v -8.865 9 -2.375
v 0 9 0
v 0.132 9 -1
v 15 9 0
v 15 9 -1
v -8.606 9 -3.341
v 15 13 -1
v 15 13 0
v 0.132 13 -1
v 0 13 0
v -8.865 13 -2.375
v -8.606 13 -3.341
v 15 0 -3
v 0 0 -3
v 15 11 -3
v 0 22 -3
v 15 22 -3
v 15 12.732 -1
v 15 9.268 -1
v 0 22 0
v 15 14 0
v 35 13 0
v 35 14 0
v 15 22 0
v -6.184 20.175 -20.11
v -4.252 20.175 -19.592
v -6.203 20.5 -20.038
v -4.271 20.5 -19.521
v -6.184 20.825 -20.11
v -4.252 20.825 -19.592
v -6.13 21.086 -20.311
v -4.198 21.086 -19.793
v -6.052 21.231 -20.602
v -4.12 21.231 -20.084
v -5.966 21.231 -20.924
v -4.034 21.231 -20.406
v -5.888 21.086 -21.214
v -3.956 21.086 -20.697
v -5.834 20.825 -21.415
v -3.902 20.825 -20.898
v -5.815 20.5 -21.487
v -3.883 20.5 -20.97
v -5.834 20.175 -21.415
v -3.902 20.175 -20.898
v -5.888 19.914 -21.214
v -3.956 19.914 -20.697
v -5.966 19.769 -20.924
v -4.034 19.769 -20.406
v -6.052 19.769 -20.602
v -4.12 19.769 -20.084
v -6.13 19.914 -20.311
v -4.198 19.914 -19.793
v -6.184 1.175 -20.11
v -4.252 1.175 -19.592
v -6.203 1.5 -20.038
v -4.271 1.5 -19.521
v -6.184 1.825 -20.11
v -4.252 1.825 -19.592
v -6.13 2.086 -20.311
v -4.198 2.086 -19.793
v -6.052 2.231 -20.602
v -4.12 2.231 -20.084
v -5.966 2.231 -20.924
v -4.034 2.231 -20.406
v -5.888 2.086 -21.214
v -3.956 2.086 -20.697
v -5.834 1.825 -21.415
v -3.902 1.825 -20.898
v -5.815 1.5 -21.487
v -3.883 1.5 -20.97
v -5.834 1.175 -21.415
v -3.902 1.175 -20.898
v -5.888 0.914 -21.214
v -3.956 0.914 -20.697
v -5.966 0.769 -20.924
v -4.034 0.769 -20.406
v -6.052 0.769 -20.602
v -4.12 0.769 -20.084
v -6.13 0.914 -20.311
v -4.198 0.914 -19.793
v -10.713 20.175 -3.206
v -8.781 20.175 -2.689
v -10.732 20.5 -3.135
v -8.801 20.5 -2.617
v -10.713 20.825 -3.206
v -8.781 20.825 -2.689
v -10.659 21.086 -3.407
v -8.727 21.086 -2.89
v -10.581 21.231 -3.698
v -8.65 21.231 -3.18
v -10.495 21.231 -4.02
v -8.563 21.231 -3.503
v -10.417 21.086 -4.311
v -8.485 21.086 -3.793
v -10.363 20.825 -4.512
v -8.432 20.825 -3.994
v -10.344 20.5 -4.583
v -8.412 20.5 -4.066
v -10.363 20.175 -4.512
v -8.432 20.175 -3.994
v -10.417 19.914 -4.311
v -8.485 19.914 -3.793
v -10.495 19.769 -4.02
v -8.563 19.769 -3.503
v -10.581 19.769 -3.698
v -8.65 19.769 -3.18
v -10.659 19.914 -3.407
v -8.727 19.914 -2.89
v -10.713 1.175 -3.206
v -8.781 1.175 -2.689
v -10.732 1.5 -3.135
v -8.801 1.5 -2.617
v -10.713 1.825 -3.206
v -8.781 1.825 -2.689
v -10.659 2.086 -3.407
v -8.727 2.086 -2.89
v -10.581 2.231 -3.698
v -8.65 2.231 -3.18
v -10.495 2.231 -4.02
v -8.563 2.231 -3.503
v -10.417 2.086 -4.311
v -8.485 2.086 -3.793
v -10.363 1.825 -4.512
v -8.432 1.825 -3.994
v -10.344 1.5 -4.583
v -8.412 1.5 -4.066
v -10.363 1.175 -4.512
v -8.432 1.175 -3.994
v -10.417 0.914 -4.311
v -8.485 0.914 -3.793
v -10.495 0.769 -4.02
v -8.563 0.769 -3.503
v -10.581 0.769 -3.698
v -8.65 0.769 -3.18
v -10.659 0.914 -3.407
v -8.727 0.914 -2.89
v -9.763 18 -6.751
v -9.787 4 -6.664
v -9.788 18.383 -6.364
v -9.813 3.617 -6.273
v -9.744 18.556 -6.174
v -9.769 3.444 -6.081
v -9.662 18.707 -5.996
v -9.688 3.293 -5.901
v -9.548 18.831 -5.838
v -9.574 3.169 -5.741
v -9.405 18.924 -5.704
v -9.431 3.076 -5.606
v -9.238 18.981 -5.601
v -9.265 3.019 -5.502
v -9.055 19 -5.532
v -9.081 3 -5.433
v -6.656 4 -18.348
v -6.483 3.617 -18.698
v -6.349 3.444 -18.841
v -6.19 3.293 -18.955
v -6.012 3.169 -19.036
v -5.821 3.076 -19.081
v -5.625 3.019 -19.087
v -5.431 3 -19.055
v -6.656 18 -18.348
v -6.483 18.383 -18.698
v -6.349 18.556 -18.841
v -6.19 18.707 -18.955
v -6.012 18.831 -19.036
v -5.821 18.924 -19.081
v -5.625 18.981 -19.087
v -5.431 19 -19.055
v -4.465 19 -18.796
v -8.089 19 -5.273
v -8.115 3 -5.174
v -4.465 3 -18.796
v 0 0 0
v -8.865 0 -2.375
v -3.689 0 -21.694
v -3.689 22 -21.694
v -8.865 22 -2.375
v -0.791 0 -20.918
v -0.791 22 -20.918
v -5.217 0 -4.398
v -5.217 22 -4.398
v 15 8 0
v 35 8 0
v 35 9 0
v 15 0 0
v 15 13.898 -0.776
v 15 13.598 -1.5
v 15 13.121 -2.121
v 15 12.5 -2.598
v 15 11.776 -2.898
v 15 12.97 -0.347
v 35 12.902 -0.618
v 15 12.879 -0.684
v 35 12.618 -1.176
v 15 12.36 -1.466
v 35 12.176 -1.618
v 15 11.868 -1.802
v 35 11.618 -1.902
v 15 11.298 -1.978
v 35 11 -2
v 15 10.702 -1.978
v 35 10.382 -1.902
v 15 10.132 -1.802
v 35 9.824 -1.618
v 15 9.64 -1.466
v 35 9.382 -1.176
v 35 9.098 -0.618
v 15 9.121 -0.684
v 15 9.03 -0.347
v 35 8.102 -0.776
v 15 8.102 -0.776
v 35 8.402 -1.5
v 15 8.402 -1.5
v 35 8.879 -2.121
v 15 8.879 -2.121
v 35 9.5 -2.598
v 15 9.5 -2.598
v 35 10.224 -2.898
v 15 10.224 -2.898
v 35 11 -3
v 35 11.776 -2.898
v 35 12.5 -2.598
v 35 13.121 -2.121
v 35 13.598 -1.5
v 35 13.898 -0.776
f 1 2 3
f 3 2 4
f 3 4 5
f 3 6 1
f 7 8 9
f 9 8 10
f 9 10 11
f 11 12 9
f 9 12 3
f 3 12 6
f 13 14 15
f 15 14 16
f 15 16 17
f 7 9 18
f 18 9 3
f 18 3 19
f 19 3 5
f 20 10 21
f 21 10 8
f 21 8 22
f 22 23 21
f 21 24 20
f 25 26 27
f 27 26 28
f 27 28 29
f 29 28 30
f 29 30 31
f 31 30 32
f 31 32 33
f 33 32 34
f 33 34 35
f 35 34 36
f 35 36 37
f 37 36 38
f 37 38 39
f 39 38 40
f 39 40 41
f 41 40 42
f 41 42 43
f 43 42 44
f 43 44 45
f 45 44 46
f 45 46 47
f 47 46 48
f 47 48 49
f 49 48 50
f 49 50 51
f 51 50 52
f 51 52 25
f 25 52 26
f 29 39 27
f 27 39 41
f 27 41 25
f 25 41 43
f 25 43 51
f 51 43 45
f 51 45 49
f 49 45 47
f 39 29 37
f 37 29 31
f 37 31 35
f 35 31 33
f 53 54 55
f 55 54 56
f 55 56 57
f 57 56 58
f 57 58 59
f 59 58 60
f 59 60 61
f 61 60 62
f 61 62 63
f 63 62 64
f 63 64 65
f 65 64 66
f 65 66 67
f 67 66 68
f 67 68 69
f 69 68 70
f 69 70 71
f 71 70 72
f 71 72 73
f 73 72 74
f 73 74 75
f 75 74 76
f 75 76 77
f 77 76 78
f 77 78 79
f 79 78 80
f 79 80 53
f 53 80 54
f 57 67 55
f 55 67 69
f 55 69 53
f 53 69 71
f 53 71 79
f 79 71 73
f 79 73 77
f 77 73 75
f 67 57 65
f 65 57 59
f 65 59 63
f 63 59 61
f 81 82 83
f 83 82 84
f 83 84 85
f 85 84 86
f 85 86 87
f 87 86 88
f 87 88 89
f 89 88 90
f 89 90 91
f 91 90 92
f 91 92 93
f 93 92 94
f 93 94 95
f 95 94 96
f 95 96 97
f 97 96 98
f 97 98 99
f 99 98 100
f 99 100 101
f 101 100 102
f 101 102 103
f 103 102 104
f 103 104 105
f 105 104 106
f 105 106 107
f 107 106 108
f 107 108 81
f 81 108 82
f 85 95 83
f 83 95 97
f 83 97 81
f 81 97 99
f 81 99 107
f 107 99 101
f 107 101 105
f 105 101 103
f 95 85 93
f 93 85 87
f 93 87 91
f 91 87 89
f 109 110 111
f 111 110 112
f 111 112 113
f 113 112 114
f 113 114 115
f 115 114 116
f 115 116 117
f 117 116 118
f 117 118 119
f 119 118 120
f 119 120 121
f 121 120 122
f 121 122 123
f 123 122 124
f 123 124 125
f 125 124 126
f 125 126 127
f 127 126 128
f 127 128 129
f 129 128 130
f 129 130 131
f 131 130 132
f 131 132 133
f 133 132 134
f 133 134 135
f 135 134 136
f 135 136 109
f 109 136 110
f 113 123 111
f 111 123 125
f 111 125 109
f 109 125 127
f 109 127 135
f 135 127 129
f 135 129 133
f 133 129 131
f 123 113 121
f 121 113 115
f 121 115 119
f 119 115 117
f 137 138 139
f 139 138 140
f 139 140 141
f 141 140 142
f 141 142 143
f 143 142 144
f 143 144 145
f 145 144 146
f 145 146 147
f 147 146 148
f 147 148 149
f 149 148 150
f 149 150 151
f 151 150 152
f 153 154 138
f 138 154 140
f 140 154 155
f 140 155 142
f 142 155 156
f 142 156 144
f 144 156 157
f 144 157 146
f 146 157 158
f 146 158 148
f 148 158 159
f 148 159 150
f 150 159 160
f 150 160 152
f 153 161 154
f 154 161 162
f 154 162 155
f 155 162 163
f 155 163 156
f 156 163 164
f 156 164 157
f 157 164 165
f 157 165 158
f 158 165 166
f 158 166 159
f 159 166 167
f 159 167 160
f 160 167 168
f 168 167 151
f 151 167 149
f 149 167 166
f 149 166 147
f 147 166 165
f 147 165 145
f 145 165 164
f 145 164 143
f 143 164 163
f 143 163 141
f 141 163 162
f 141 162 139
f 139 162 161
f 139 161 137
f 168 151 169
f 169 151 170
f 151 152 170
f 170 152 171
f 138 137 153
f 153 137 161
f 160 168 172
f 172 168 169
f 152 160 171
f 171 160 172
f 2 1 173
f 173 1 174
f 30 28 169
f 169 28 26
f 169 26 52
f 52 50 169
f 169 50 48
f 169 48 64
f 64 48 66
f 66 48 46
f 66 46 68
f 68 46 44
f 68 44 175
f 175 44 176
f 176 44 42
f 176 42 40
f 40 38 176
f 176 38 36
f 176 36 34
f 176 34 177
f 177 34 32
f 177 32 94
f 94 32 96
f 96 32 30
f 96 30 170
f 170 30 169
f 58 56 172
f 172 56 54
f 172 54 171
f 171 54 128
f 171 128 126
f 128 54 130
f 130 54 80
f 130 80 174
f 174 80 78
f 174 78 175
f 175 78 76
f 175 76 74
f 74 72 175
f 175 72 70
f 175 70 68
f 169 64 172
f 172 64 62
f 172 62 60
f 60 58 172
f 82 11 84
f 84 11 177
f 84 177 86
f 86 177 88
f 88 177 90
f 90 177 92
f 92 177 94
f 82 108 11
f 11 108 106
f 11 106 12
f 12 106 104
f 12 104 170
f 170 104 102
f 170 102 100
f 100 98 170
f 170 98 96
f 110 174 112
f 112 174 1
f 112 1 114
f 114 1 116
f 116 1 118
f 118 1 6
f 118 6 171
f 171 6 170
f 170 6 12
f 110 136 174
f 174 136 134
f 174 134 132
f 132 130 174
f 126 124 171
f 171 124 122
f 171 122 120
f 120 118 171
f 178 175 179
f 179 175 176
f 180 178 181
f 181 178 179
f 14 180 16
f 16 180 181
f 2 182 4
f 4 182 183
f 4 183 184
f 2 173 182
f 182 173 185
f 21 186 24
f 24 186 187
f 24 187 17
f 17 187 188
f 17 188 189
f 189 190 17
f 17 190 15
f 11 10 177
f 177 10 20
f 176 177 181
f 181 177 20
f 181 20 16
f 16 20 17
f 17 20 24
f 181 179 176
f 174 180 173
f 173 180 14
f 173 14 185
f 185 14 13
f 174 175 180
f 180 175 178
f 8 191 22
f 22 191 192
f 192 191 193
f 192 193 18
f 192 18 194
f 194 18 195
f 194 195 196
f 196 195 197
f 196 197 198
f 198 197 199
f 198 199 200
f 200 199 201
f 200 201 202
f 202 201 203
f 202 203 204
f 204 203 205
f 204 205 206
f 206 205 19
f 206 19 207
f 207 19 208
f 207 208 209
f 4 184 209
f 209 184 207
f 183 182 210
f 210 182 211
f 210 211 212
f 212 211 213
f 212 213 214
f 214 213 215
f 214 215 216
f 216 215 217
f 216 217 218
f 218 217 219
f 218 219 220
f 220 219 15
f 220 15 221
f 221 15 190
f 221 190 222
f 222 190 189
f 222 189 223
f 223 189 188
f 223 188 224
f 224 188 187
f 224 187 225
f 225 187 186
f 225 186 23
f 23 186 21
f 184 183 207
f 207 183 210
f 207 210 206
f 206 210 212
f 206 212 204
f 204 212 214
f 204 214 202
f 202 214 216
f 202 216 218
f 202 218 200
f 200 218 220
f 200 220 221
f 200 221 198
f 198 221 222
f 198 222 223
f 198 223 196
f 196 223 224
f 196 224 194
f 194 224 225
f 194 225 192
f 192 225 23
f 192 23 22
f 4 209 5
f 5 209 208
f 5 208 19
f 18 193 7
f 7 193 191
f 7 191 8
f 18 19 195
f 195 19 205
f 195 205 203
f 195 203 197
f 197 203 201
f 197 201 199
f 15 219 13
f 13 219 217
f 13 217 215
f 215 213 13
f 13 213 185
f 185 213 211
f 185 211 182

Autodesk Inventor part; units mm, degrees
ref_plane "YZ Plane" through (0, 0, 0) normal (1, 0, 0) x (0, 1, 0)
ref_plane "XZ Plane" through (0, 0, 0) normal (0, 1, 0) x (-1, 0, 0)
ref_plane "XY Plane" through (0, 0, 0) normal (0, 0, 1) x (1, 0, 0)
sketch "Boceto1" plane through (0, 0, 0) normal (0, 1, 0) x (-1, 0, 0)
  line L0 (0, 0) -> (-15, 0)
  line L1 (0, 0) -> (7.0223, -1.8816)
  line L2 (0, 0) -> (7.27, 0) construction
  line L3 (8.8653, -2.3754) -> (7.0223, -1.8816)
  line L4 (8.8653, -2.3754) -> (3.6889, -21.694)
  line L5 (8.8653, -2.3754) -> (28.8653, -2.3754) construction
  line L6 (-15, 0) -> (-15, -3)
  line L7 (-15, -3) -> (0, -3)
  line L8 (0, -3) -> (5.2175, -4.398)
  line L9 (5.2175, -4.398) -> (25.2175, -4.398) construction
  line L10 (3.6889, -21.694) -> (0.7911, -20.9175)
  line L11 (0.7911, -20.9175) -> (5.2175, -4.398)
  point P0 (4.2275, -19.6837)
  dimension "d0" = 15
  dimension "d1" = 7.27
  dimension "d2" = 15
  dimension "d3" = 1.908
  dimension "d4" = 20
  dimension "d5" = 105
  dimension "d7" = 3
extrude "Extrusión1" add sketch "Boceto1" along normal blind 22
sketch "Boceto2" plane through (0, 0, 0) normal (-0.258819, 0, 0.9659258) x (0.9659258, 0, 0.258819)
  line L0 (-9.178, 0) -> (-9.178, 22) projected
  line L1 (-9.178, 0) -> (-9.178, 9)
  line L2 (-9.178, 9) -> (0, 9)
  line L3 (0, 9) -> (0, 13)
  line L4 (0, 13) -> (-9.178, 13)
  line L5 (-9.178, 13) -> (-9.178, 9)
  line L6 (0, 0) -> (0, 11)
  line L7 (0, 0) -> (0, 22) projected
  point P0 (-9.178, 13)
  dimension "d12" = 9
  dimension "d13" = 4
  dimension "d53" = 11
extrude "Extrusión2" cut sketch "Boceto2" against normal blind 1
sketch "Boceto3" plane through (0, 0, 0) normal (0, 0, 1) x (1, 0, 0)
  line L0 (15, 0) -> (15, 22) projected
  line L1 (15, 7) -> (15, 3.2945)
  line L2 (15, 3.2945) -> (15, 3)
  line L3 (15, 22) -> (0, 22) projected
  line L4 (15, 22) -> (15, 11)
  line L5 (15, 0) -> (15, 22) projected
  line L6 (0, 0) -> (0, 22) projected
  line L7 (13.0524, 11) -> (13.0524, 9)
  line L8 (13.0524, 9) -> (15, 9)
  line L9 (0, 9) -> (15, 9)
  line L10 (15, 11) -> (15, 13)
  line L11 (15, 13) -> (0, 13)
  point P0 (0, 9)
  point P1 (0, 13)
  dimension "d48" = 11
  dimension "d49" = 2
  dimension "d50" = 2
sketch "Boceto7" plane through (-3.6889, 0, -21.694) normal (-0.9659258, 0, -0.258819) x (-0.258819, 0, 0.9659258)
  line L0 (0, 0) -> (0, 22) projected
  line L1 (0, 0) -> (0, 3)
  line L2 (0, 3) -> (20, 3)
  line L3 (20, 3) -> (20, 19)
  line L4 (20, 13) -> (20, 22) projected
  line L5 (20, 19) -> (17, 19)
  line L6 (17, 19) -> (17.1022, 3)
  line L7 (17.1022, 0) -> (17.1022, 22) projected
  line L8 (17, 19) -> (0, 19)
  line L9 (0, 22) -> (3, 22)
  line L10 (17.1022, 22) -> (0, 22) projected
  line L11 (3, 22) -> (3, 0)
  point P0 (20, 0)
  point P1 (20, 7)
  point P2 (3, 19)
  point P3 (3, 3)
  dimension "d30" = 3
  dimension "d31" = 16
  dimension "d32" = 3
  dimension "d33" = 3
extrude "Extrusión6" add sketch "Boceto7" along normal blind 2 contours L11 L8 L6 L2
fillet "Empalme1" radius 1 4 edges at (-6.3972, 11, -19.3138) (-8.2222, 3, -12.503) (-10.0339, 11, -5.7415) (-8.2089, 19, -12.5523)
sketch "Boceto8" plane through (-3.6889, 0, -21.694) normal (-0.9659258, 0, -0.258819) x (-0.258819, 0, 0.9659258)
  line L0 (0, 0) -> (20, 0) projected
  line L1 (0, 0) -> (0, 1.5)
  line L2 (0, 0) -> (0, 22) projected
  line L3 (0, 1.5) -> (1.5, 1.5)
  line L4 (1.5, 1.5) -> (1.5, 20.5)
  line L5 (1.5, 20.5) -> (19, 20.5)
  line L6 (20, 13) -> (20, 22) projected
  line L7 (19, 20.5) -> (19, 1.5)
  line L8 (19, 1.5) -> (1.5, 1.5)
  circle A0 centre (1.5, 1.5) radius 0.75
  circle A1 centre (1.5, 20.5) radius 0.75
  circle A2 centre (19, 20.5) radius 0.75
  circle A3 centre (19, 1.5) radius 0.75
  dimension "d37" = 1.5
  dimension "d38" = 1.5
  dimension "d39" = 19
  dimension "d40" = 17.5
  dimension "d41" = 19
  dimension "d42" = 1.5
  dimension "d43" = 1.5
  dimension "d44" = 1.5
  dimension "d45" = 1.5
extrude "Extrusión7" add sketch "Boceto8" along normal blind 2 contours A0 L4 L3 | L3 L8 A0 | L4 A0 L8 | A1 L5 L4 | L4 L5 A1 | A3 L7 L8 | L8 L7 A3 | A2 L7 L5 | L5 L7 A2
extrude "Extrusión8" cut sketch "Boceto3" against normal blind 1 contours L8 L9 L6 L11 L0
sketch "Boceto9" plane through (15, 0, 0) normal (1, 0, 0) x (0, 0, -1)
  line L0 (0, 13) -> (0, 11)
  circle A0 centre (0, 11) radius 3
  circle A1 centre (0, 11) radius 2
  line L1 (0, 15.8082) -> (0, 4.1439)
  point P0 (0, 0)
  point P1 (0, 9)
  point P2 (0, 8)
  point P3 (0, 14)
  dimension "d54" = 2
  dimension "d55" = 4
extrude "Extrusión9" add sketch "Boceto9" along normal blind 20 contours L1 A0 A1 picked at (2.6416, 11.2225)
properties part number "GY_906 Casetop"
